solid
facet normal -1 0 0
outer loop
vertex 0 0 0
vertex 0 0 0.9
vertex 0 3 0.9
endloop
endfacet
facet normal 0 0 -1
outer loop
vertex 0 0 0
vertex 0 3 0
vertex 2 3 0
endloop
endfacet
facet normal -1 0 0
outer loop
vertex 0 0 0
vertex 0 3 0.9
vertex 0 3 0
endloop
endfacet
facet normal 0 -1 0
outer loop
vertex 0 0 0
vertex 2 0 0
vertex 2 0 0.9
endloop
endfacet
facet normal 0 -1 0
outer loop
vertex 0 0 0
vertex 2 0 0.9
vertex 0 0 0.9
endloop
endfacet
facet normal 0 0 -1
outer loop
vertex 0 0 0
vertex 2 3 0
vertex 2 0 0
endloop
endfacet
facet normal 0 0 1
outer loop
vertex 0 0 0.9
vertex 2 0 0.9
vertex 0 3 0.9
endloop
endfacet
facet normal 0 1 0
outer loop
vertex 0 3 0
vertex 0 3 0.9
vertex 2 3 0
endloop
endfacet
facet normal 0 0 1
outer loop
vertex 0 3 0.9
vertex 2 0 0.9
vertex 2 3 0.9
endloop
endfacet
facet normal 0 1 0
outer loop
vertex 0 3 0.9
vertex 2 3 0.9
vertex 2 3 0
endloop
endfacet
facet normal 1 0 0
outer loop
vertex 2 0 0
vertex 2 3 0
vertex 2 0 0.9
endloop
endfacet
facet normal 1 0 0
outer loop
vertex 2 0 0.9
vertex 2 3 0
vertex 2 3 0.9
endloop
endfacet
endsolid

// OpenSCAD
/* Warning, this is a very basic generator with a lot of approximation 
input data : [DFN, BYX, 2x3x0.9mm, 8, , E, C04-00123E]
generated by com.zoubworld.electronics.cad.model3d.Basic
Date : Sun Feb 15 10:50:48 CET 2026
*/

//body
color("black")
translate([0,0,0])
cube([2.0,3.0,0.9], center=false);
